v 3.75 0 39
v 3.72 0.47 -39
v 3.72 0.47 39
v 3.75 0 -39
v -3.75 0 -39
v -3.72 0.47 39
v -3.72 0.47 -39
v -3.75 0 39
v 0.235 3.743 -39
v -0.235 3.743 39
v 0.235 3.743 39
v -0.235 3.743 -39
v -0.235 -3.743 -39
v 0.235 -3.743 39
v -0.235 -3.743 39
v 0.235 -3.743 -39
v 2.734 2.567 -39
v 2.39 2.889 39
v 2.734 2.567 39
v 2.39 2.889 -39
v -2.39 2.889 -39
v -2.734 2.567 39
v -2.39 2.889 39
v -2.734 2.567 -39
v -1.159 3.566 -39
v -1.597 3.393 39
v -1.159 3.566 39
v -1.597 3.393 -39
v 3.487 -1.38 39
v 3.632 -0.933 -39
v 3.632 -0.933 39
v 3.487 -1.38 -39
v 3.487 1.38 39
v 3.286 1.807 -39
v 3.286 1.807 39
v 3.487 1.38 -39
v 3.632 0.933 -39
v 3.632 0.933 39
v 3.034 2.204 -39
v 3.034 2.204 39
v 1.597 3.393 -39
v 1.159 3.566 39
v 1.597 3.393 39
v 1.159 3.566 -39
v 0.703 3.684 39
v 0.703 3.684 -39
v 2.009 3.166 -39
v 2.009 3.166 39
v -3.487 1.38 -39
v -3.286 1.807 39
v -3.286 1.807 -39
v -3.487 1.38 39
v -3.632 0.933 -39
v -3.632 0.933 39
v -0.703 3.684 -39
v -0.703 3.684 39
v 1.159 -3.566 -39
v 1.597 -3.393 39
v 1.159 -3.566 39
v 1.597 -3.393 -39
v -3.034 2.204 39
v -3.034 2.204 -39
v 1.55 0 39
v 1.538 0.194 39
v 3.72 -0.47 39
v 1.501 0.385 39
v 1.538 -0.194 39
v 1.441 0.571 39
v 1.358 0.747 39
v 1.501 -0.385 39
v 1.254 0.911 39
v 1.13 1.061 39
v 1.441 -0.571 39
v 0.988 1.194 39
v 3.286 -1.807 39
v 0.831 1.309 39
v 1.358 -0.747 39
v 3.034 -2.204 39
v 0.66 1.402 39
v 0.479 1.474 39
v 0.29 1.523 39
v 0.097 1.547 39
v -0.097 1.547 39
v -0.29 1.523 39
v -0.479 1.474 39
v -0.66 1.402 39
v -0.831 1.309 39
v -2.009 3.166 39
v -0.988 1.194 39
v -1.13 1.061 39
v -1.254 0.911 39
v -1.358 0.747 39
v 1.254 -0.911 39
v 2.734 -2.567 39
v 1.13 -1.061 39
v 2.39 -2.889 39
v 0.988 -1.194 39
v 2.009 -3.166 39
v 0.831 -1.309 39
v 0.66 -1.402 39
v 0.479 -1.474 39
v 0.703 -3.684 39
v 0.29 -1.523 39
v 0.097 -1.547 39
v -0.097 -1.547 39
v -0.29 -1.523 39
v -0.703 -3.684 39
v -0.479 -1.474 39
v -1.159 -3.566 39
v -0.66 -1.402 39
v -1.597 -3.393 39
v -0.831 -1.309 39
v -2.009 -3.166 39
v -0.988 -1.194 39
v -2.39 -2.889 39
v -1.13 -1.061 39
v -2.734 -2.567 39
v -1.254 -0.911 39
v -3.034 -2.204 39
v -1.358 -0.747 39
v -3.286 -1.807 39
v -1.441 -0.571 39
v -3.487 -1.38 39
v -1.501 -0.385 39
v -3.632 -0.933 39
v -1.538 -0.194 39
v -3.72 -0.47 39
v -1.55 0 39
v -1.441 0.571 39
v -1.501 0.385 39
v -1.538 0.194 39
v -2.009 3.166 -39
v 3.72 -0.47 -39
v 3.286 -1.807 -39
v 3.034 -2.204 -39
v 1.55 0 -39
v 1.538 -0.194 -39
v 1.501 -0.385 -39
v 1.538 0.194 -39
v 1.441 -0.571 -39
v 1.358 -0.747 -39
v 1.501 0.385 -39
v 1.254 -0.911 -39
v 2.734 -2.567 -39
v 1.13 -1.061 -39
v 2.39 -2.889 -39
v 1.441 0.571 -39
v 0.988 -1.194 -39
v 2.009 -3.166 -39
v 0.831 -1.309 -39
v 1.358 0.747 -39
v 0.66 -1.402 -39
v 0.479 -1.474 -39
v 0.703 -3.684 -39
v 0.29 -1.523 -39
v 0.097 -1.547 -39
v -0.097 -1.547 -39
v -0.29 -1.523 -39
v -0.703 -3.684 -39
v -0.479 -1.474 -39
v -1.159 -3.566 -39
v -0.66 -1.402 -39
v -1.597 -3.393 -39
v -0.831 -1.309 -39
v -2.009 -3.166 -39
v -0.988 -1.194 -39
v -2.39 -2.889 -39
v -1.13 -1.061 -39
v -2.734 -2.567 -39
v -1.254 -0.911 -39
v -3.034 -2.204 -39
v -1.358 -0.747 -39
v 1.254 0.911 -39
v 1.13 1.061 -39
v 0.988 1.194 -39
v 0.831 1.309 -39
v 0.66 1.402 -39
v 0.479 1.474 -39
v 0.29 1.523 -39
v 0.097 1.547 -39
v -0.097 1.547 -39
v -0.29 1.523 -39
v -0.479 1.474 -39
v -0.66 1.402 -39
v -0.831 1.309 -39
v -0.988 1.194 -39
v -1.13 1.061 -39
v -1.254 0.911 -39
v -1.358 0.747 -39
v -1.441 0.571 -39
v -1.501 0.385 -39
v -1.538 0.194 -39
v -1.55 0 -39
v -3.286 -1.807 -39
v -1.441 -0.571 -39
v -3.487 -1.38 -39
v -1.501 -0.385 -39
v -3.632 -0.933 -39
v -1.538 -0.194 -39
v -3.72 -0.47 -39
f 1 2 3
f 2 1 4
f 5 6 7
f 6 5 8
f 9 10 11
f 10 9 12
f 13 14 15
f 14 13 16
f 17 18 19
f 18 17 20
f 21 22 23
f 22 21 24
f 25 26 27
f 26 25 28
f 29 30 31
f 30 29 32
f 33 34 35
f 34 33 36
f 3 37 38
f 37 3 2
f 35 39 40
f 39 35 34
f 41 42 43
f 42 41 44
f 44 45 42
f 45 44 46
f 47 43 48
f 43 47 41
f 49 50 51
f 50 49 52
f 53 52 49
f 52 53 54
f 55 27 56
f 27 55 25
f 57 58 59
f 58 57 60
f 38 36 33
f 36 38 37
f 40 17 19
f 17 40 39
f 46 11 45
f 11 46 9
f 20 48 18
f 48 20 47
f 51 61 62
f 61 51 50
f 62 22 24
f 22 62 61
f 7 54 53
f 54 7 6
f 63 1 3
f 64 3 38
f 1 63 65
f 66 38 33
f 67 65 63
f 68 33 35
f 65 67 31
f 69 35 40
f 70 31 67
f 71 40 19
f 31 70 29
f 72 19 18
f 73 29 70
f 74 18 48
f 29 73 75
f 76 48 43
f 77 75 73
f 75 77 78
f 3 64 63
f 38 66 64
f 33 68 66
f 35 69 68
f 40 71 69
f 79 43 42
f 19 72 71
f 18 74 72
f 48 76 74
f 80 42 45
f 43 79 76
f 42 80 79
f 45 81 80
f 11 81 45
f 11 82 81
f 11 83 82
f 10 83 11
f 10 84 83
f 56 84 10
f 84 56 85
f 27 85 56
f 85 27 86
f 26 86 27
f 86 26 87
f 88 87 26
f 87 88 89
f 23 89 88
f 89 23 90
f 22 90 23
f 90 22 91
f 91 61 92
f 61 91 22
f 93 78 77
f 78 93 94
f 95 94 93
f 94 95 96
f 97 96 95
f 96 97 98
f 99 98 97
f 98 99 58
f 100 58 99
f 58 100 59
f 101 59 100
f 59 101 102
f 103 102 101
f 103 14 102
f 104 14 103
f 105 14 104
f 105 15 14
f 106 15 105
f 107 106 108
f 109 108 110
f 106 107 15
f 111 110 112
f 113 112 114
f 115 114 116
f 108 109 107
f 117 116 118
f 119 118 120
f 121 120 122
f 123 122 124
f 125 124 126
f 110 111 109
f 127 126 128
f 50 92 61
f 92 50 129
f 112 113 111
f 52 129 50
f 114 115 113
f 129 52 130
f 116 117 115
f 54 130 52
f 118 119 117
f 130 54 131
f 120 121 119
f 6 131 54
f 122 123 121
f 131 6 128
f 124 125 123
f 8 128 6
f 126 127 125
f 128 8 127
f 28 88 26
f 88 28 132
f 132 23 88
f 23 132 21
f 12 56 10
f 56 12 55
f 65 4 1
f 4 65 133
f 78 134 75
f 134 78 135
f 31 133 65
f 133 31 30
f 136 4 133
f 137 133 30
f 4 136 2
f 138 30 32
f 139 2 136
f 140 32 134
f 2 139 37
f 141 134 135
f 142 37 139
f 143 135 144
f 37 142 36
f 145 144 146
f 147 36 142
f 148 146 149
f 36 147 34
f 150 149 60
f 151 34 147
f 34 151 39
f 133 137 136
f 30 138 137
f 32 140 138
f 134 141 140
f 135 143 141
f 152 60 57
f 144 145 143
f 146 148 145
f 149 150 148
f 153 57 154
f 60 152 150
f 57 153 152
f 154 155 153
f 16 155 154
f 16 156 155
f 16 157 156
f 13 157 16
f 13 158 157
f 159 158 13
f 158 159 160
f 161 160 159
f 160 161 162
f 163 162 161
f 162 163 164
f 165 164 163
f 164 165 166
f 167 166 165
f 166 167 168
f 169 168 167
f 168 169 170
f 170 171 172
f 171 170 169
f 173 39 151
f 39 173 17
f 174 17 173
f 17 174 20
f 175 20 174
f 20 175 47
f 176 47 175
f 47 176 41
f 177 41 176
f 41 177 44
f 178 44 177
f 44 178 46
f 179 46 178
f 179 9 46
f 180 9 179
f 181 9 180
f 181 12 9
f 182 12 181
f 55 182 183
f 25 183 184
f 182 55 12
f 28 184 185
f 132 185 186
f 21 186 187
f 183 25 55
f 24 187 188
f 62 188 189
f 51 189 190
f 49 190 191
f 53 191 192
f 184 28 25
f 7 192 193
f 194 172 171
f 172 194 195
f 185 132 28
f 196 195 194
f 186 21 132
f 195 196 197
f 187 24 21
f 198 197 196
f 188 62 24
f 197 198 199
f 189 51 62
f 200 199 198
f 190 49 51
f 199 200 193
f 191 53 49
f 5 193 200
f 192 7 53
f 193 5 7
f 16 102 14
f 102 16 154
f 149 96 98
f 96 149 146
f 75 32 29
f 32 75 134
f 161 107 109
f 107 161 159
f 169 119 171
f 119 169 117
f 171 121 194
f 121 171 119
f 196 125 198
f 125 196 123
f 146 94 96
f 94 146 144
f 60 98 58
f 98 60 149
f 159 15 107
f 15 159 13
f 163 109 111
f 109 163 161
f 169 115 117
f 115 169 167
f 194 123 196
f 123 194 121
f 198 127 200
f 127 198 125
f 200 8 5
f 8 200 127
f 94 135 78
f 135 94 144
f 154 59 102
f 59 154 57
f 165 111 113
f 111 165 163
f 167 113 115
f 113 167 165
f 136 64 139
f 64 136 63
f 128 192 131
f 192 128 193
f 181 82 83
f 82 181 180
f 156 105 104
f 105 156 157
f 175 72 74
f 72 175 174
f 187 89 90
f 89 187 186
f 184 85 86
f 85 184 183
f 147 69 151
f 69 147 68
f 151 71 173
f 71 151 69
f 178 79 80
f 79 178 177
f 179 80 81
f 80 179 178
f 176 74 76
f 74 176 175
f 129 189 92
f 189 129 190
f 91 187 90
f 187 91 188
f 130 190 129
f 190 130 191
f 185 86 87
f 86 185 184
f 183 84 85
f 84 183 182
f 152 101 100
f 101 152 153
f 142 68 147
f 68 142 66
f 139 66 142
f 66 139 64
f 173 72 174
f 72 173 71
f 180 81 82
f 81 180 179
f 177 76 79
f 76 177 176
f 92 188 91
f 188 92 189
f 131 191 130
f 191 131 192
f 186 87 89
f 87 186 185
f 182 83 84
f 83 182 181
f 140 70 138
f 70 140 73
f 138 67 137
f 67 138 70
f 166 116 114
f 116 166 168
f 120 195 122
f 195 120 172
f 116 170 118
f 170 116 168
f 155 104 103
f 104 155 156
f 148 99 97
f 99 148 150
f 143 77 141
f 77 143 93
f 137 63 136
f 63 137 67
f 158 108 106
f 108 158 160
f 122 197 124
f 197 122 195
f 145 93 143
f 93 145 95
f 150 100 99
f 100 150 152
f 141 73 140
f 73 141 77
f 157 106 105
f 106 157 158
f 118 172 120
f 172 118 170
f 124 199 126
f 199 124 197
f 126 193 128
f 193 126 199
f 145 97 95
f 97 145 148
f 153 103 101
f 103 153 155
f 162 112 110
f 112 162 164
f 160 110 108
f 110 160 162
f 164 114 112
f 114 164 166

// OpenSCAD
$fn = 50;


difference() {
	union() {
		translate(v = [0, 0, -39.0000000000]) {
			cylinder(h = 78, r = 3.7500000000);
		}
	}
	union() {
		translate(v = [0, 0, -100.0000000000]) {
			cylinder(h = 200, r = 1.5500000000);
		}
	}
}
